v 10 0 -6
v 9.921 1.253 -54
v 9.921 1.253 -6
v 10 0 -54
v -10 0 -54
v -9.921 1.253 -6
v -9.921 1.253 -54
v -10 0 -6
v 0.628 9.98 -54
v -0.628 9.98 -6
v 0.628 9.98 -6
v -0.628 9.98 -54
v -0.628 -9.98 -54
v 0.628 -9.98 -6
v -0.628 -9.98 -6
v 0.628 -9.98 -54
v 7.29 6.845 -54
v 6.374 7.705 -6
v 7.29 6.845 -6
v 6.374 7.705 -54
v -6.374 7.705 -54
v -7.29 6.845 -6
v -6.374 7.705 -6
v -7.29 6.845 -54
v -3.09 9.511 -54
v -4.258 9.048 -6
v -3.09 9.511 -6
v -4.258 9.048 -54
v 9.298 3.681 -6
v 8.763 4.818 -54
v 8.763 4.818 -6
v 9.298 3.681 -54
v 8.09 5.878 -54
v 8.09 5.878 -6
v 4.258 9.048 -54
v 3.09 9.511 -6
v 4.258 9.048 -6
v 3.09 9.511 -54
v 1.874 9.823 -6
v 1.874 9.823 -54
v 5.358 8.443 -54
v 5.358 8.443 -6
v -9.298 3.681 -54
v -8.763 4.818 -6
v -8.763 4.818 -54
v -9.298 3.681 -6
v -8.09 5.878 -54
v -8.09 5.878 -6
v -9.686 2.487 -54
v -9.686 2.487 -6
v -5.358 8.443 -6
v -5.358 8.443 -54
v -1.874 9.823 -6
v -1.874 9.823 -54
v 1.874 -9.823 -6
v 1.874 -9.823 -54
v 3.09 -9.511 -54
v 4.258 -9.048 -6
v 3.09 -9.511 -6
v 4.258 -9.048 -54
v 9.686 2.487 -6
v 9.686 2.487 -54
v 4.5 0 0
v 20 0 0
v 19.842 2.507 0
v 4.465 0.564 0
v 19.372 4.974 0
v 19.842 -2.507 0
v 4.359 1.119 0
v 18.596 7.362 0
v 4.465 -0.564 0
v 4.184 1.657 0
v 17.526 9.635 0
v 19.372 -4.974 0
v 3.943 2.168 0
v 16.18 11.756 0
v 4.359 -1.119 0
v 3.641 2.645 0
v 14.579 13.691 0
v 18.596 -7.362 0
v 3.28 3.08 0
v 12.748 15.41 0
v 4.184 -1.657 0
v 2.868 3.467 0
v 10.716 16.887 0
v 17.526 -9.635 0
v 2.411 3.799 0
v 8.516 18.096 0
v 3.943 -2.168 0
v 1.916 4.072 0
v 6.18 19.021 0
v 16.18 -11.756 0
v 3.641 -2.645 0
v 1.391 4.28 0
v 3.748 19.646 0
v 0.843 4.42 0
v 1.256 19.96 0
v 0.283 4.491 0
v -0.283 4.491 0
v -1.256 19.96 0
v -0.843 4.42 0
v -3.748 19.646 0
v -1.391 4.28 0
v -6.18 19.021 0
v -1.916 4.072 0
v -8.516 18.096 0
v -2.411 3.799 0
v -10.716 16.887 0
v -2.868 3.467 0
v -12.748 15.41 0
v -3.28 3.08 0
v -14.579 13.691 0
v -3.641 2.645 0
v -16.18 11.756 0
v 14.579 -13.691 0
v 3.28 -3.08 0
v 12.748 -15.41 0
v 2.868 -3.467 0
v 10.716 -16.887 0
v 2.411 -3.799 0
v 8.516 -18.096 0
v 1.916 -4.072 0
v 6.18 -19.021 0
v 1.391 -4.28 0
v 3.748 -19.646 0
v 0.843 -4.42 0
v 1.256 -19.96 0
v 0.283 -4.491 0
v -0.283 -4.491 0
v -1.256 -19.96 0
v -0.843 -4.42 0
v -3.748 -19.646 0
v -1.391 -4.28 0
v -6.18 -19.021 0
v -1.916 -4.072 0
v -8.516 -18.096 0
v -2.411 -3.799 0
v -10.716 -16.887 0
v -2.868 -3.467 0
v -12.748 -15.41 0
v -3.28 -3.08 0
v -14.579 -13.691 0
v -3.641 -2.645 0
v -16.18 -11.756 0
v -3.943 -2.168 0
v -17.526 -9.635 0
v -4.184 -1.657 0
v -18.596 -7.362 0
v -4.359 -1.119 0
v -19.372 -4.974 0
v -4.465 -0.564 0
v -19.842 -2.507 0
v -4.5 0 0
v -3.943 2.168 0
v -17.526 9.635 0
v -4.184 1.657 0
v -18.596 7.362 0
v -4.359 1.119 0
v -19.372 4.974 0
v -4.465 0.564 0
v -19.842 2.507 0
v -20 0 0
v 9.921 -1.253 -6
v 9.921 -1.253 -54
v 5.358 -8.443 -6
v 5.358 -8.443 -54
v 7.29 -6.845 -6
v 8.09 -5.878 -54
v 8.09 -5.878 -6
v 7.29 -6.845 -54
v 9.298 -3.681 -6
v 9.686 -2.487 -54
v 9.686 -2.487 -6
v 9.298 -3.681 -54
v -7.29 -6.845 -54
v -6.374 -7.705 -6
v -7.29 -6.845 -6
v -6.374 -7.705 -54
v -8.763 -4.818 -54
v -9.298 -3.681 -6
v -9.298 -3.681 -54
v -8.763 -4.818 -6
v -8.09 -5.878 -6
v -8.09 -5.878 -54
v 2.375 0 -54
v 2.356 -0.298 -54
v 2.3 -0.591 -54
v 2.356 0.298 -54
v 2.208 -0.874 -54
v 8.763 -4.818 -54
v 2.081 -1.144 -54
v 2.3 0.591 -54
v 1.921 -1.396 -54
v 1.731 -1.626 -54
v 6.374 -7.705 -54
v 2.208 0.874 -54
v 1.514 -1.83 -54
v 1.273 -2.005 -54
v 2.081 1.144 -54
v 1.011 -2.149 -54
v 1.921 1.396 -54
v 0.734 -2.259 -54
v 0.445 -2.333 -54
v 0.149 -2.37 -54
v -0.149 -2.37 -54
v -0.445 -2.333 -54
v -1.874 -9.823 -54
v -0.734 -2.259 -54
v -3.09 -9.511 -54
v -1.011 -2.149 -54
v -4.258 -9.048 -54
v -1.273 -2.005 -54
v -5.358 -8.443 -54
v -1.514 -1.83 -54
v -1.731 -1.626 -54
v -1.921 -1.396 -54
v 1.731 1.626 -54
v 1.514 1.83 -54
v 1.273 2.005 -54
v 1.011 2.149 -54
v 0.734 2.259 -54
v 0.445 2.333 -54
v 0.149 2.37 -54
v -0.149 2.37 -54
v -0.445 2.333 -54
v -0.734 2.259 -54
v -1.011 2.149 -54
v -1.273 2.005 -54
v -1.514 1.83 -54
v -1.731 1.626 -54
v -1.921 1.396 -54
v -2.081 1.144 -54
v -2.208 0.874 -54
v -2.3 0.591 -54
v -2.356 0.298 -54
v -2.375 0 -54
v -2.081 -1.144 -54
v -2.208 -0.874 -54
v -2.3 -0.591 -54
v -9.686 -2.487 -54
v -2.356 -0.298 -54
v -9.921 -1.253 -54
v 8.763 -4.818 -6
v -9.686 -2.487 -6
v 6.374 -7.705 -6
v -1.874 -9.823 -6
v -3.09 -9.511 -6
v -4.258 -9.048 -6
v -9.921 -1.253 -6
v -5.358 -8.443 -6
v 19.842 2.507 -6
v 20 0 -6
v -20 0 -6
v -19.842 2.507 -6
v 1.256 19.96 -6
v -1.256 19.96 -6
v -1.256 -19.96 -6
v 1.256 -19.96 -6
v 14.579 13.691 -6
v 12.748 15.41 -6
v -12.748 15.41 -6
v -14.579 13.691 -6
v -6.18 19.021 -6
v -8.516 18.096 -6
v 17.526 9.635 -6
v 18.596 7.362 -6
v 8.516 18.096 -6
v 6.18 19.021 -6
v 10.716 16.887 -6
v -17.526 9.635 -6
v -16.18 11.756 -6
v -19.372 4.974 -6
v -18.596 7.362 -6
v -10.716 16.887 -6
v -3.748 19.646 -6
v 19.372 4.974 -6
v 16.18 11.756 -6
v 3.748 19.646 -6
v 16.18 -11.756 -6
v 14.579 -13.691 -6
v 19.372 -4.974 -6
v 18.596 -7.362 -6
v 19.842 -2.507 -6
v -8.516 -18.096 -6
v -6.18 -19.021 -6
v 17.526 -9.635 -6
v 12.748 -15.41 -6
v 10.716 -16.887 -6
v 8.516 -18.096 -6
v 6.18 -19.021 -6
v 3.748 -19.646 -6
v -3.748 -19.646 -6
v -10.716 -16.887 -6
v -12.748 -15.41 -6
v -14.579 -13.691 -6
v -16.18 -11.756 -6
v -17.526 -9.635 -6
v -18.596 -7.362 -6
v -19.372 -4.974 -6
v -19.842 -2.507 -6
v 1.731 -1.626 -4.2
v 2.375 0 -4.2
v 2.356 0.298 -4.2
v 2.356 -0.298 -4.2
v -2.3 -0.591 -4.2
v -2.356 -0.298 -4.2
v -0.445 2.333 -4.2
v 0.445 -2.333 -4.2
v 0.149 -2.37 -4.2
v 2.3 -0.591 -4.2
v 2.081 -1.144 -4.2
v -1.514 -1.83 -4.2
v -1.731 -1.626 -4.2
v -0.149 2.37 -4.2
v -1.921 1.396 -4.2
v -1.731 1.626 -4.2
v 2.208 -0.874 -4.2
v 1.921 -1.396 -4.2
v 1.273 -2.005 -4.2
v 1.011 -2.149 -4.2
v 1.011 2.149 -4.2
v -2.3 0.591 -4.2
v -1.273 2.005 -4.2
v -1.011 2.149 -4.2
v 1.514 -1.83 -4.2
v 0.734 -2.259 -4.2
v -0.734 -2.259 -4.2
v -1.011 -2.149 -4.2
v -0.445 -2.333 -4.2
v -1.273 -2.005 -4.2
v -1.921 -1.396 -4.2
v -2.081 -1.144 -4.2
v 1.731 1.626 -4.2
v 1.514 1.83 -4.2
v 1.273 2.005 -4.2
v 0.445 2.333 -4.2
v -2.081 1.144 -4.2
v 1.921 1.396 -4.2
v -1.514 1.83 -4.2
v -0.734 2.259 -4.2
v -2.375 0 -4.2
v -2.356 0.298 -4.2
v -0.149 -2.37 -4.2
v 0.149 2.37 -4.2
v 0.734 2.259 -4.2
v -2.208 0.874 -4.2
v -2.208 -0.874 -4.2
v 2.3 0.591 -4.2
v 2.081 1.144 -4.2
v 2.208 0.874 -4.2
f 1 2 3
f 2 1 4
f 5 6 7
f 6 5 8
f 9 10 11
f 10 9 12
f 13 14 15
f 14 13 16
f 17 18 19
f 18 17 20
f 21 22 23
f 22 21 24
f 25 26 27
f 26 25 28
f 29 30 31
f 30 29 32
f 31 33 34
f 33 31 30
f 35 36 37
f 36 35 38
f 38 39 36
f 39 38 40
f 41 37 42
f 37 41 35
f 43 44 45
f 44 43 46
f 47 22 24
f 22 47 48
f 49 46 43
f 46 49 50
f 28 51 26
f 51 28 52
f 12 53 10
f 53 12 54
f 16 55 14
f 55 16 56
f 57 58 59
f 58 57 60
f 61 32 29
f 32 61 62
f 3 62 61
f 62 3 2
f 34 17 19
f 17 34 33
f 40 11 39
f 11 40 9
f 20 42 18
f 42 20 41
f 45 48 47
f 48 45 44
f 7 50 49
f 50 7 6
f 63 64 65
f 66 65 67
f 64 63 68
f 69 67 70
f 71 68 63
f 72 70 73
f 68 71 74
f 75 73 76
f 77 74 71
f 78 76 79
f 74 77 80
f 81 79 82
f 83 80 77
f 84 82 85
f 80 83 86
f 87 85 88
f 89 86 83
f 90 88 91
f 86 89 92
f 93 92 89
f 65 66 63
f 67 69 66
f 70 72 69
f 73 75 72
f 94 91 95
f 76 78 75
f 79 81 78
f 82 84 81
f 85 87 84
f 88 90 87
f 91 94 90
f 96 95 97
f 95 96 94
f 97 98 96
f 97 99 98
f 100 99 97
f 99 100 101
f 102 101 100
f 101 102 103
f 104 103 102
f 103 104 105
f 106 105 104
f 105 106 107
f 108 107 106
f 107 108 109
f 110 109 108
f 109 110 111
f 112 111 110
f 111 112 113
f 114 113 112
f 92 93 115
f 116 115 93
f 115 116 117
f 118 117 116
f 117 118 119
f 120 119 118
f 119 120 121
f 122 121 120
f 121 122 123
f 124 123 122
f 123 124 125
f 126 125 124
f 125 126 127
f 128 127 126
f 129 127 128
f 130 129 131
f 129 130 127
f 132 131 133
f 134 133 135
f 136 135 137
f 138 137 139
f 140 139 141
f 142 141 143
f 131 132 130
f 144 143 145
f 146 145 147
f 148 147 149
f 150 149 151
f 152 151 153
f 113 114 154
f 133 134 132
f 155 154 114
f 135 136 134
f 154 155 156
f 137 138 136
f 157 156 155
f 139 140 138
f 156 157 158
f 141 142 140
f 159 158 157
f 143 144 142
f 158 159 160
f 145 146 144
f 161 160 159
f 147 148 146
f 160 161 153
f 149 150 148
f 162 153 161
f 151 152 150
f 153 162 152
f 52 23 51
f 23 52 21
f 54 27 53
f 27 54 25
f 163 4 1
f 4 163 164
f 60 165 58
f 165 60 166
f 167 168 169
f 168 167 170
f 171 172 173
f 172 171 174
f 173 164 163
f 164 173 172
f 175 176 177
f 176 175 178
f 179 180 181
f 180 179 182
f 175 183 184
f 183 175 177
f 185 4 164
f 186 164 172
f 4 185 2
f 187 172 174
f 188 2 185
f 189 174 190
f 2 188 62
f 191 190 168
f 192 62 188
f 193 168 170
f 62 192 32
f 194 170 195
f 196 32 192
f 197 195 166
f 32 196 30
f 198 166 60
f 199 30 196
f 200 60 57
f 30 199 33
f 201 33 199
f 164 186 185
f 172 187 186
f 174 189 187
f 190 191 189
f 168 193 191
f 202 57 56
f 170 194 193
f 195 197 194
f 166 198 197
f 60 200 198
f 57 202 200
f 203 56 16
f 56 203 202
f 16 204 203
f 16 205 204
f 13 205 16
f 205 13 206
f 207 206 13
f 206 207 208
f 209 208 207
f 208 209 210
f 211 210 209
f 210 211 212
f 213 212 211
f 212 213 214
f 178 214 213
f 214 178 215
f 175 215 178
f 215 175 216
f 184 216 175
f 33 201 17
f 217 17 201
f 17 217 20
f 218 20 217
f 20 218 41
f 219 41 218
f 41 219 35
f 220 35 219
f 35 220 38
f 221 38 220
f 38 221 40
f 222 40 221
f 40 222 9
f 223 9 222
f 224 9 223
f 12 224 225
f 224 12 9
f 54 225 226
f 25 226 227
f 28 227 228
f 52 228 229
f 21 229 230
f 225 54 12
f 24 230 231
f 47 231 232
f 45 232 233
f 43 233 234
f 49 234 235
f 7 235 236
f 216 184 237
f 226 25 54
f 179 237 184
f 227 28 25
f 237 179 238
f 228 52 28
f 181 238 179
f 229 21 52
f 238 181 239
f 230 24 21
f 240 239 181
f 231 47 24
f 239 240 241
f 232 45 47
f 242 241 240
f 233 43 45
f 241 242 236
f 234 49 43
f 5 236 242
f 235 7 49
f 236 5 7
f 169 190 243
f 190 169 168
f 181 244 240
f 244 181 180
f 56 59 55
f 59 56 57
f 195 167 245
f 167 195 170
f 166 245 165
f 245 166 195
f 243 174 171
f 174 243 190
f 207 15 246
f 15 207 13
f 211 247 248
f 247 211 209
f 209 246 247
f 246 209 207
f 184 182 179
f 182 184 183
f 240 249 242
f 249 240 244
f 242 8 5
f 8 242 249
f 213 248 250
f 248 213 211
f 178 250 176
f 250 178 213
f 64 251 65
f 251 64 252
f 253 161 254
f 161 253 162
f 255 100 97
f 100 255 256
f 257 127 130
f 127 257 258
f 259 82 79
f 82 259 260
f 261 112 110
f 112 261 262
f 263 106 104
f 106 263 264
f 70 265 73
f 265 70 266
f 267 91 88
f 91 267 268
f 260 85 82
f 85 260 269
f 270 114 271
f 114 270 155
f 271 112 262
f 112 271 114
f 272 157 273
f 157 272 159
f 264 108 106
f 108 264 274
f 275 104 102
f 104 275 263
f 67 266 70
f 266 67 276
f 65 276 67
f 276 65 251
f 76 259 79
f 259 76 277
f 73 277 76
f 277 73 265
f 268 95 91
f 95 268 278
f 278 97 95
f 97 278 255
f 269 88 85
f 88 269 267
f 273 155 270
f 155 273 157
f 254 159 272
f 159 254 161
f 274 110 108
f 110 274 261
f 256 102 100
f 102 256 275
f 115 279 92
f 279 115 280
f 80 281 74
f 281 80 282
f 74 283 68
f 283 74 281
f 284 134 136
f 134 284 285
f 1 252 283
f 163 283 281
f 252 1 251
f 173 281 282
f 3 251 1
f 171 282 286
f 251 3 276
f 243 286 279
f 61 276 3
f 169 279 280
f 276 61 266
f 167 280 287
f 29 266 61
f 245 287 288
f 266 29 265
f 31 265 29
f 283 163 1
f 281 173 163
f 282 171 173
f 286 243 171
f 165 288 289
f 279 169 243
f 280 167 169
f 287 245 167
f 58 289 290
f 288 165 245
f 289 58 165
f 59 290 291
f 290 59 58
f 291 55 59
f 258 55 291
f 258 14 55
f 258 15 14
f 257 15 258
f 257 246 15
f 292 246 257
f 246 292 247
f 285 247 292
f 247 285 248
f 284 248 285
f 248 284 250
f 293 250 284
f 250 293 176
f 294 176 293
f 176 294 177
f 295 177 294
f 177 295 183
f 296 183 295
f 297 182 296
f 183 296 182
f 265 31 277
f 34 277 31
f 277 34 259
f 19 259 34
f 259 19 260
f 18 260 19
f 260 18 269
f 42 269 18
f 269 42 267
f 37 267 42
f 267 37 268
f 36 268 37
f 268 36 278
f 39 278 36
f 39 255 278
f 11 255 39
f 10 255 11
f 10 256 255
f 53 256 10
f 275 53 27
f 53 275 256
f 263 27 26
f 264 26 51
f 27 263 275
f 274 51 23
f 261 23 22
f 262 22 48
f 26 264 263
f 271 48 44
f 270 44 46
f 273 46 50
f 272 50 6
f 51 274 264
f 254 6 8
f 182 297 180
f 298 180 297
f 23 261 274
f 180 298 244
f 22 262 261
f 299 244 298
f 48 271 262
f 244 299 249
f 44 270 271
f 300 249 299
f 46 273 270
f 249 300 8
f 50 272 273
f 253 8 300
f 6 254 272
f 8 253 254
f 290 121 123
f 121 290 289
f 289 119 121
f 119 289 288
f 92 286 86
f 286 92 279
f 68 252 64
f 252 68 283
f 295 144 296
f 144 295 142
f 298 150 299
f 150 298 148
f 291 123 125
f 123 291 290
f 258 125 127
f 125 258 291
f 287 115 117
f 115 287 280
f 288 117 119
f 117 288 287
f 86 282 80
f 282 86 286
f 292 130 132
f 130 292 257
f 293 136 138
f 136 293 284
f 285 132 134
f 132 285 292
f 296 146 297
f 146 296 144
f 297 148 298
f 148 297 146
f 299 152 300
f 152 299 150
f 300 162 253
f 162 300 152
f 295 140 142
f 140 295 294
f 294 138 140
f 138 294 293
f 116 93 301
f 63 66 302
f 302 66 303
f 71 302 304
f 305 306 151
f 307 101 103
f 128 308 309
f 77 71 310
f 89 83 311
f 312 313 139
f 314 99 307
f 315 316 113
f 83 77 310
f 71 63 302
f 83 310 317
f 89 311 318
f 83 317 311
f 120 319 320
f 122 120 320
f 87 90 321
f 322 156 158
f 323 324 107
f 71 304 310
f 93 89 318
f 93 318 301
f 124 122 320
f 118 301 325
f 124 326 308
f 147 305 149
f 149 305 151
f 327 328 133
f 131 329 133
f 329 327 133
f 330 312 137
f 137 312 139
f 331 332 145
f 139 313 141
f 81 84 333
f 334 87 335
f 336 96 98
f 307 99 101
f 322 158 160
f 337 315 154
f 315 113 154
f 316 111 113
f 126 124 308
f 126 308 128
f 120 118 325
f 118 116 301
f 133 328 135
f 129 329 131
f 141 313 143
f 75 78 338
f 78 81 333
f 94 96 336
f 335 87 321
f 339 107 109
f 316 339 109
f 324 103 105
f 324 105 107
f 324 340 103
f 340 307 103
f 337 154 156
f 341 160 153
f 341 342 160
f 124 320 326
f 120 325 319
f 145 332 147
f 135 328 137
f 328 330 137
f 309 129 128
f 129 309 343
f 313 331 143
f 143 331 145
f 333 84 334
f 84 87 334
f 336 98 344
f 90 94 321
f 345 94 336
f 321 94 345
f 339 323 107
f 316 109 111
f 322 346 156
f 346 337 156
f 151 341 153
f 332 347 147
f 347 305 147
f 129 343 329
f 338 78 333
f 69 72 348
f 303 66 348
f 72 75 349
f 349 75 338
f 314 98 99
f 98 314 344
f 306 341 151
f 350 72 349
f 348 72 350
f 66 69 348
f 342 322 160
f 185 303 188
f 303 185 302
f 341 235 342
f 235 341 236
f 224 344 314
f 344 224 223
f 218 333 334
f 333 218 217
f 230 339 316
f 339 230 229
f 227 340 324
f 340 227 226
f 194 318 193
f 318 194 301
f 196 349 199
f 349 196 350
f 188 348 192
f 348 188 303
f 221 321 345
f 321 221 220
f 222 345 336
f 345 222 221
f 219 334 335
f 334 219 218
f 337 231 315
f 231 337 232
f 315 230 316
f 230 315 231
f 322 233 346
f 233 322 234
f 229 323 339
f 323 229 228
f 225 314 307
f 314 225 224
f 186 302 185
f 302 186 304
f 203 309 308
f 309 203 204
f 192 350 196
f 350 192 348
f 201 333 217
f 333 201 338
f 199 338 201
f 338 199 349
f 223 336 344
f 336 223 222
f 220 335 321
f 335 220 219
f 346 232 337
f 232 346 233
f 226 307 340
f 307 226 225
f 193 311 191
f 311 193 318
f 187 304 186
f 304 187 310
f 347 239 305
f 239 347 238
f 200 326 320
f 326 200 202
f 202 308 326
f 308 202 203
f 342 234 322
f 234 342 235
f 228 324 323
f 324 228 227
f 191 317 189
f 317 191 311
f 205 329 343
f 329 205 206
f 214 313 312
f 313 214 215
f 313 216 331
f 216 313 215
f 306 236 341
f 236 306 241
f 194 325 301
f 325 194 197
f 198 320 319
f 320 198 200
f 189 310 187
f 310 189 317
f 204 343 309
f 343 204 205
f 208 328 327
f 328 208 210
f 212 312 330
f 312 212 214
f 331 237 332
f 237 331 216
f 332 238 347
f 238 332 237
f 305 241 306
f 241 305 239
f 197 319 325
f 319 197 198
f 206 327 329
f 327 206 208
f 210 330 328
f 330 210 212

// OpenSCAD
$fn = 50;


difference() {
	union() {
		translate(v = [0, 0, -54.0000000000]) {
			cylinder(h = 54, r = 10.0000000000);
		}
		translate(v = [0, 0, -6.0000000000]) {
			cylinder(h = 6, r = 20.0000000000);
		}
	}
	union() {
		translate(v = [0, 0, 0]) {
			rotate(a = [0, 0, 0]) {
				difference() {
					union() {
						#translate(v = [0, 0, -54.0000000000]) {
							cylinder(h = 54, r = 2.2500000000);
						}
						#translate(v = [0, 0, -4.2000000000]) {
							cylinder(h = 4.2000000000, r = 10.0000000000, r1 = 2.3750000000, r2 = 4.5000000000);
						}
						#translate(v = [0, 0, -54.0000000000]) {
							cylinder(h = 54, r = 2.3750000000);
						}
						#translate(v = [0, 0, -54.0000000000]) {
							cylinder(h = 54, r = 2.2500000000);
						}
					}
					union();
				}
			}
		}
	}
}
